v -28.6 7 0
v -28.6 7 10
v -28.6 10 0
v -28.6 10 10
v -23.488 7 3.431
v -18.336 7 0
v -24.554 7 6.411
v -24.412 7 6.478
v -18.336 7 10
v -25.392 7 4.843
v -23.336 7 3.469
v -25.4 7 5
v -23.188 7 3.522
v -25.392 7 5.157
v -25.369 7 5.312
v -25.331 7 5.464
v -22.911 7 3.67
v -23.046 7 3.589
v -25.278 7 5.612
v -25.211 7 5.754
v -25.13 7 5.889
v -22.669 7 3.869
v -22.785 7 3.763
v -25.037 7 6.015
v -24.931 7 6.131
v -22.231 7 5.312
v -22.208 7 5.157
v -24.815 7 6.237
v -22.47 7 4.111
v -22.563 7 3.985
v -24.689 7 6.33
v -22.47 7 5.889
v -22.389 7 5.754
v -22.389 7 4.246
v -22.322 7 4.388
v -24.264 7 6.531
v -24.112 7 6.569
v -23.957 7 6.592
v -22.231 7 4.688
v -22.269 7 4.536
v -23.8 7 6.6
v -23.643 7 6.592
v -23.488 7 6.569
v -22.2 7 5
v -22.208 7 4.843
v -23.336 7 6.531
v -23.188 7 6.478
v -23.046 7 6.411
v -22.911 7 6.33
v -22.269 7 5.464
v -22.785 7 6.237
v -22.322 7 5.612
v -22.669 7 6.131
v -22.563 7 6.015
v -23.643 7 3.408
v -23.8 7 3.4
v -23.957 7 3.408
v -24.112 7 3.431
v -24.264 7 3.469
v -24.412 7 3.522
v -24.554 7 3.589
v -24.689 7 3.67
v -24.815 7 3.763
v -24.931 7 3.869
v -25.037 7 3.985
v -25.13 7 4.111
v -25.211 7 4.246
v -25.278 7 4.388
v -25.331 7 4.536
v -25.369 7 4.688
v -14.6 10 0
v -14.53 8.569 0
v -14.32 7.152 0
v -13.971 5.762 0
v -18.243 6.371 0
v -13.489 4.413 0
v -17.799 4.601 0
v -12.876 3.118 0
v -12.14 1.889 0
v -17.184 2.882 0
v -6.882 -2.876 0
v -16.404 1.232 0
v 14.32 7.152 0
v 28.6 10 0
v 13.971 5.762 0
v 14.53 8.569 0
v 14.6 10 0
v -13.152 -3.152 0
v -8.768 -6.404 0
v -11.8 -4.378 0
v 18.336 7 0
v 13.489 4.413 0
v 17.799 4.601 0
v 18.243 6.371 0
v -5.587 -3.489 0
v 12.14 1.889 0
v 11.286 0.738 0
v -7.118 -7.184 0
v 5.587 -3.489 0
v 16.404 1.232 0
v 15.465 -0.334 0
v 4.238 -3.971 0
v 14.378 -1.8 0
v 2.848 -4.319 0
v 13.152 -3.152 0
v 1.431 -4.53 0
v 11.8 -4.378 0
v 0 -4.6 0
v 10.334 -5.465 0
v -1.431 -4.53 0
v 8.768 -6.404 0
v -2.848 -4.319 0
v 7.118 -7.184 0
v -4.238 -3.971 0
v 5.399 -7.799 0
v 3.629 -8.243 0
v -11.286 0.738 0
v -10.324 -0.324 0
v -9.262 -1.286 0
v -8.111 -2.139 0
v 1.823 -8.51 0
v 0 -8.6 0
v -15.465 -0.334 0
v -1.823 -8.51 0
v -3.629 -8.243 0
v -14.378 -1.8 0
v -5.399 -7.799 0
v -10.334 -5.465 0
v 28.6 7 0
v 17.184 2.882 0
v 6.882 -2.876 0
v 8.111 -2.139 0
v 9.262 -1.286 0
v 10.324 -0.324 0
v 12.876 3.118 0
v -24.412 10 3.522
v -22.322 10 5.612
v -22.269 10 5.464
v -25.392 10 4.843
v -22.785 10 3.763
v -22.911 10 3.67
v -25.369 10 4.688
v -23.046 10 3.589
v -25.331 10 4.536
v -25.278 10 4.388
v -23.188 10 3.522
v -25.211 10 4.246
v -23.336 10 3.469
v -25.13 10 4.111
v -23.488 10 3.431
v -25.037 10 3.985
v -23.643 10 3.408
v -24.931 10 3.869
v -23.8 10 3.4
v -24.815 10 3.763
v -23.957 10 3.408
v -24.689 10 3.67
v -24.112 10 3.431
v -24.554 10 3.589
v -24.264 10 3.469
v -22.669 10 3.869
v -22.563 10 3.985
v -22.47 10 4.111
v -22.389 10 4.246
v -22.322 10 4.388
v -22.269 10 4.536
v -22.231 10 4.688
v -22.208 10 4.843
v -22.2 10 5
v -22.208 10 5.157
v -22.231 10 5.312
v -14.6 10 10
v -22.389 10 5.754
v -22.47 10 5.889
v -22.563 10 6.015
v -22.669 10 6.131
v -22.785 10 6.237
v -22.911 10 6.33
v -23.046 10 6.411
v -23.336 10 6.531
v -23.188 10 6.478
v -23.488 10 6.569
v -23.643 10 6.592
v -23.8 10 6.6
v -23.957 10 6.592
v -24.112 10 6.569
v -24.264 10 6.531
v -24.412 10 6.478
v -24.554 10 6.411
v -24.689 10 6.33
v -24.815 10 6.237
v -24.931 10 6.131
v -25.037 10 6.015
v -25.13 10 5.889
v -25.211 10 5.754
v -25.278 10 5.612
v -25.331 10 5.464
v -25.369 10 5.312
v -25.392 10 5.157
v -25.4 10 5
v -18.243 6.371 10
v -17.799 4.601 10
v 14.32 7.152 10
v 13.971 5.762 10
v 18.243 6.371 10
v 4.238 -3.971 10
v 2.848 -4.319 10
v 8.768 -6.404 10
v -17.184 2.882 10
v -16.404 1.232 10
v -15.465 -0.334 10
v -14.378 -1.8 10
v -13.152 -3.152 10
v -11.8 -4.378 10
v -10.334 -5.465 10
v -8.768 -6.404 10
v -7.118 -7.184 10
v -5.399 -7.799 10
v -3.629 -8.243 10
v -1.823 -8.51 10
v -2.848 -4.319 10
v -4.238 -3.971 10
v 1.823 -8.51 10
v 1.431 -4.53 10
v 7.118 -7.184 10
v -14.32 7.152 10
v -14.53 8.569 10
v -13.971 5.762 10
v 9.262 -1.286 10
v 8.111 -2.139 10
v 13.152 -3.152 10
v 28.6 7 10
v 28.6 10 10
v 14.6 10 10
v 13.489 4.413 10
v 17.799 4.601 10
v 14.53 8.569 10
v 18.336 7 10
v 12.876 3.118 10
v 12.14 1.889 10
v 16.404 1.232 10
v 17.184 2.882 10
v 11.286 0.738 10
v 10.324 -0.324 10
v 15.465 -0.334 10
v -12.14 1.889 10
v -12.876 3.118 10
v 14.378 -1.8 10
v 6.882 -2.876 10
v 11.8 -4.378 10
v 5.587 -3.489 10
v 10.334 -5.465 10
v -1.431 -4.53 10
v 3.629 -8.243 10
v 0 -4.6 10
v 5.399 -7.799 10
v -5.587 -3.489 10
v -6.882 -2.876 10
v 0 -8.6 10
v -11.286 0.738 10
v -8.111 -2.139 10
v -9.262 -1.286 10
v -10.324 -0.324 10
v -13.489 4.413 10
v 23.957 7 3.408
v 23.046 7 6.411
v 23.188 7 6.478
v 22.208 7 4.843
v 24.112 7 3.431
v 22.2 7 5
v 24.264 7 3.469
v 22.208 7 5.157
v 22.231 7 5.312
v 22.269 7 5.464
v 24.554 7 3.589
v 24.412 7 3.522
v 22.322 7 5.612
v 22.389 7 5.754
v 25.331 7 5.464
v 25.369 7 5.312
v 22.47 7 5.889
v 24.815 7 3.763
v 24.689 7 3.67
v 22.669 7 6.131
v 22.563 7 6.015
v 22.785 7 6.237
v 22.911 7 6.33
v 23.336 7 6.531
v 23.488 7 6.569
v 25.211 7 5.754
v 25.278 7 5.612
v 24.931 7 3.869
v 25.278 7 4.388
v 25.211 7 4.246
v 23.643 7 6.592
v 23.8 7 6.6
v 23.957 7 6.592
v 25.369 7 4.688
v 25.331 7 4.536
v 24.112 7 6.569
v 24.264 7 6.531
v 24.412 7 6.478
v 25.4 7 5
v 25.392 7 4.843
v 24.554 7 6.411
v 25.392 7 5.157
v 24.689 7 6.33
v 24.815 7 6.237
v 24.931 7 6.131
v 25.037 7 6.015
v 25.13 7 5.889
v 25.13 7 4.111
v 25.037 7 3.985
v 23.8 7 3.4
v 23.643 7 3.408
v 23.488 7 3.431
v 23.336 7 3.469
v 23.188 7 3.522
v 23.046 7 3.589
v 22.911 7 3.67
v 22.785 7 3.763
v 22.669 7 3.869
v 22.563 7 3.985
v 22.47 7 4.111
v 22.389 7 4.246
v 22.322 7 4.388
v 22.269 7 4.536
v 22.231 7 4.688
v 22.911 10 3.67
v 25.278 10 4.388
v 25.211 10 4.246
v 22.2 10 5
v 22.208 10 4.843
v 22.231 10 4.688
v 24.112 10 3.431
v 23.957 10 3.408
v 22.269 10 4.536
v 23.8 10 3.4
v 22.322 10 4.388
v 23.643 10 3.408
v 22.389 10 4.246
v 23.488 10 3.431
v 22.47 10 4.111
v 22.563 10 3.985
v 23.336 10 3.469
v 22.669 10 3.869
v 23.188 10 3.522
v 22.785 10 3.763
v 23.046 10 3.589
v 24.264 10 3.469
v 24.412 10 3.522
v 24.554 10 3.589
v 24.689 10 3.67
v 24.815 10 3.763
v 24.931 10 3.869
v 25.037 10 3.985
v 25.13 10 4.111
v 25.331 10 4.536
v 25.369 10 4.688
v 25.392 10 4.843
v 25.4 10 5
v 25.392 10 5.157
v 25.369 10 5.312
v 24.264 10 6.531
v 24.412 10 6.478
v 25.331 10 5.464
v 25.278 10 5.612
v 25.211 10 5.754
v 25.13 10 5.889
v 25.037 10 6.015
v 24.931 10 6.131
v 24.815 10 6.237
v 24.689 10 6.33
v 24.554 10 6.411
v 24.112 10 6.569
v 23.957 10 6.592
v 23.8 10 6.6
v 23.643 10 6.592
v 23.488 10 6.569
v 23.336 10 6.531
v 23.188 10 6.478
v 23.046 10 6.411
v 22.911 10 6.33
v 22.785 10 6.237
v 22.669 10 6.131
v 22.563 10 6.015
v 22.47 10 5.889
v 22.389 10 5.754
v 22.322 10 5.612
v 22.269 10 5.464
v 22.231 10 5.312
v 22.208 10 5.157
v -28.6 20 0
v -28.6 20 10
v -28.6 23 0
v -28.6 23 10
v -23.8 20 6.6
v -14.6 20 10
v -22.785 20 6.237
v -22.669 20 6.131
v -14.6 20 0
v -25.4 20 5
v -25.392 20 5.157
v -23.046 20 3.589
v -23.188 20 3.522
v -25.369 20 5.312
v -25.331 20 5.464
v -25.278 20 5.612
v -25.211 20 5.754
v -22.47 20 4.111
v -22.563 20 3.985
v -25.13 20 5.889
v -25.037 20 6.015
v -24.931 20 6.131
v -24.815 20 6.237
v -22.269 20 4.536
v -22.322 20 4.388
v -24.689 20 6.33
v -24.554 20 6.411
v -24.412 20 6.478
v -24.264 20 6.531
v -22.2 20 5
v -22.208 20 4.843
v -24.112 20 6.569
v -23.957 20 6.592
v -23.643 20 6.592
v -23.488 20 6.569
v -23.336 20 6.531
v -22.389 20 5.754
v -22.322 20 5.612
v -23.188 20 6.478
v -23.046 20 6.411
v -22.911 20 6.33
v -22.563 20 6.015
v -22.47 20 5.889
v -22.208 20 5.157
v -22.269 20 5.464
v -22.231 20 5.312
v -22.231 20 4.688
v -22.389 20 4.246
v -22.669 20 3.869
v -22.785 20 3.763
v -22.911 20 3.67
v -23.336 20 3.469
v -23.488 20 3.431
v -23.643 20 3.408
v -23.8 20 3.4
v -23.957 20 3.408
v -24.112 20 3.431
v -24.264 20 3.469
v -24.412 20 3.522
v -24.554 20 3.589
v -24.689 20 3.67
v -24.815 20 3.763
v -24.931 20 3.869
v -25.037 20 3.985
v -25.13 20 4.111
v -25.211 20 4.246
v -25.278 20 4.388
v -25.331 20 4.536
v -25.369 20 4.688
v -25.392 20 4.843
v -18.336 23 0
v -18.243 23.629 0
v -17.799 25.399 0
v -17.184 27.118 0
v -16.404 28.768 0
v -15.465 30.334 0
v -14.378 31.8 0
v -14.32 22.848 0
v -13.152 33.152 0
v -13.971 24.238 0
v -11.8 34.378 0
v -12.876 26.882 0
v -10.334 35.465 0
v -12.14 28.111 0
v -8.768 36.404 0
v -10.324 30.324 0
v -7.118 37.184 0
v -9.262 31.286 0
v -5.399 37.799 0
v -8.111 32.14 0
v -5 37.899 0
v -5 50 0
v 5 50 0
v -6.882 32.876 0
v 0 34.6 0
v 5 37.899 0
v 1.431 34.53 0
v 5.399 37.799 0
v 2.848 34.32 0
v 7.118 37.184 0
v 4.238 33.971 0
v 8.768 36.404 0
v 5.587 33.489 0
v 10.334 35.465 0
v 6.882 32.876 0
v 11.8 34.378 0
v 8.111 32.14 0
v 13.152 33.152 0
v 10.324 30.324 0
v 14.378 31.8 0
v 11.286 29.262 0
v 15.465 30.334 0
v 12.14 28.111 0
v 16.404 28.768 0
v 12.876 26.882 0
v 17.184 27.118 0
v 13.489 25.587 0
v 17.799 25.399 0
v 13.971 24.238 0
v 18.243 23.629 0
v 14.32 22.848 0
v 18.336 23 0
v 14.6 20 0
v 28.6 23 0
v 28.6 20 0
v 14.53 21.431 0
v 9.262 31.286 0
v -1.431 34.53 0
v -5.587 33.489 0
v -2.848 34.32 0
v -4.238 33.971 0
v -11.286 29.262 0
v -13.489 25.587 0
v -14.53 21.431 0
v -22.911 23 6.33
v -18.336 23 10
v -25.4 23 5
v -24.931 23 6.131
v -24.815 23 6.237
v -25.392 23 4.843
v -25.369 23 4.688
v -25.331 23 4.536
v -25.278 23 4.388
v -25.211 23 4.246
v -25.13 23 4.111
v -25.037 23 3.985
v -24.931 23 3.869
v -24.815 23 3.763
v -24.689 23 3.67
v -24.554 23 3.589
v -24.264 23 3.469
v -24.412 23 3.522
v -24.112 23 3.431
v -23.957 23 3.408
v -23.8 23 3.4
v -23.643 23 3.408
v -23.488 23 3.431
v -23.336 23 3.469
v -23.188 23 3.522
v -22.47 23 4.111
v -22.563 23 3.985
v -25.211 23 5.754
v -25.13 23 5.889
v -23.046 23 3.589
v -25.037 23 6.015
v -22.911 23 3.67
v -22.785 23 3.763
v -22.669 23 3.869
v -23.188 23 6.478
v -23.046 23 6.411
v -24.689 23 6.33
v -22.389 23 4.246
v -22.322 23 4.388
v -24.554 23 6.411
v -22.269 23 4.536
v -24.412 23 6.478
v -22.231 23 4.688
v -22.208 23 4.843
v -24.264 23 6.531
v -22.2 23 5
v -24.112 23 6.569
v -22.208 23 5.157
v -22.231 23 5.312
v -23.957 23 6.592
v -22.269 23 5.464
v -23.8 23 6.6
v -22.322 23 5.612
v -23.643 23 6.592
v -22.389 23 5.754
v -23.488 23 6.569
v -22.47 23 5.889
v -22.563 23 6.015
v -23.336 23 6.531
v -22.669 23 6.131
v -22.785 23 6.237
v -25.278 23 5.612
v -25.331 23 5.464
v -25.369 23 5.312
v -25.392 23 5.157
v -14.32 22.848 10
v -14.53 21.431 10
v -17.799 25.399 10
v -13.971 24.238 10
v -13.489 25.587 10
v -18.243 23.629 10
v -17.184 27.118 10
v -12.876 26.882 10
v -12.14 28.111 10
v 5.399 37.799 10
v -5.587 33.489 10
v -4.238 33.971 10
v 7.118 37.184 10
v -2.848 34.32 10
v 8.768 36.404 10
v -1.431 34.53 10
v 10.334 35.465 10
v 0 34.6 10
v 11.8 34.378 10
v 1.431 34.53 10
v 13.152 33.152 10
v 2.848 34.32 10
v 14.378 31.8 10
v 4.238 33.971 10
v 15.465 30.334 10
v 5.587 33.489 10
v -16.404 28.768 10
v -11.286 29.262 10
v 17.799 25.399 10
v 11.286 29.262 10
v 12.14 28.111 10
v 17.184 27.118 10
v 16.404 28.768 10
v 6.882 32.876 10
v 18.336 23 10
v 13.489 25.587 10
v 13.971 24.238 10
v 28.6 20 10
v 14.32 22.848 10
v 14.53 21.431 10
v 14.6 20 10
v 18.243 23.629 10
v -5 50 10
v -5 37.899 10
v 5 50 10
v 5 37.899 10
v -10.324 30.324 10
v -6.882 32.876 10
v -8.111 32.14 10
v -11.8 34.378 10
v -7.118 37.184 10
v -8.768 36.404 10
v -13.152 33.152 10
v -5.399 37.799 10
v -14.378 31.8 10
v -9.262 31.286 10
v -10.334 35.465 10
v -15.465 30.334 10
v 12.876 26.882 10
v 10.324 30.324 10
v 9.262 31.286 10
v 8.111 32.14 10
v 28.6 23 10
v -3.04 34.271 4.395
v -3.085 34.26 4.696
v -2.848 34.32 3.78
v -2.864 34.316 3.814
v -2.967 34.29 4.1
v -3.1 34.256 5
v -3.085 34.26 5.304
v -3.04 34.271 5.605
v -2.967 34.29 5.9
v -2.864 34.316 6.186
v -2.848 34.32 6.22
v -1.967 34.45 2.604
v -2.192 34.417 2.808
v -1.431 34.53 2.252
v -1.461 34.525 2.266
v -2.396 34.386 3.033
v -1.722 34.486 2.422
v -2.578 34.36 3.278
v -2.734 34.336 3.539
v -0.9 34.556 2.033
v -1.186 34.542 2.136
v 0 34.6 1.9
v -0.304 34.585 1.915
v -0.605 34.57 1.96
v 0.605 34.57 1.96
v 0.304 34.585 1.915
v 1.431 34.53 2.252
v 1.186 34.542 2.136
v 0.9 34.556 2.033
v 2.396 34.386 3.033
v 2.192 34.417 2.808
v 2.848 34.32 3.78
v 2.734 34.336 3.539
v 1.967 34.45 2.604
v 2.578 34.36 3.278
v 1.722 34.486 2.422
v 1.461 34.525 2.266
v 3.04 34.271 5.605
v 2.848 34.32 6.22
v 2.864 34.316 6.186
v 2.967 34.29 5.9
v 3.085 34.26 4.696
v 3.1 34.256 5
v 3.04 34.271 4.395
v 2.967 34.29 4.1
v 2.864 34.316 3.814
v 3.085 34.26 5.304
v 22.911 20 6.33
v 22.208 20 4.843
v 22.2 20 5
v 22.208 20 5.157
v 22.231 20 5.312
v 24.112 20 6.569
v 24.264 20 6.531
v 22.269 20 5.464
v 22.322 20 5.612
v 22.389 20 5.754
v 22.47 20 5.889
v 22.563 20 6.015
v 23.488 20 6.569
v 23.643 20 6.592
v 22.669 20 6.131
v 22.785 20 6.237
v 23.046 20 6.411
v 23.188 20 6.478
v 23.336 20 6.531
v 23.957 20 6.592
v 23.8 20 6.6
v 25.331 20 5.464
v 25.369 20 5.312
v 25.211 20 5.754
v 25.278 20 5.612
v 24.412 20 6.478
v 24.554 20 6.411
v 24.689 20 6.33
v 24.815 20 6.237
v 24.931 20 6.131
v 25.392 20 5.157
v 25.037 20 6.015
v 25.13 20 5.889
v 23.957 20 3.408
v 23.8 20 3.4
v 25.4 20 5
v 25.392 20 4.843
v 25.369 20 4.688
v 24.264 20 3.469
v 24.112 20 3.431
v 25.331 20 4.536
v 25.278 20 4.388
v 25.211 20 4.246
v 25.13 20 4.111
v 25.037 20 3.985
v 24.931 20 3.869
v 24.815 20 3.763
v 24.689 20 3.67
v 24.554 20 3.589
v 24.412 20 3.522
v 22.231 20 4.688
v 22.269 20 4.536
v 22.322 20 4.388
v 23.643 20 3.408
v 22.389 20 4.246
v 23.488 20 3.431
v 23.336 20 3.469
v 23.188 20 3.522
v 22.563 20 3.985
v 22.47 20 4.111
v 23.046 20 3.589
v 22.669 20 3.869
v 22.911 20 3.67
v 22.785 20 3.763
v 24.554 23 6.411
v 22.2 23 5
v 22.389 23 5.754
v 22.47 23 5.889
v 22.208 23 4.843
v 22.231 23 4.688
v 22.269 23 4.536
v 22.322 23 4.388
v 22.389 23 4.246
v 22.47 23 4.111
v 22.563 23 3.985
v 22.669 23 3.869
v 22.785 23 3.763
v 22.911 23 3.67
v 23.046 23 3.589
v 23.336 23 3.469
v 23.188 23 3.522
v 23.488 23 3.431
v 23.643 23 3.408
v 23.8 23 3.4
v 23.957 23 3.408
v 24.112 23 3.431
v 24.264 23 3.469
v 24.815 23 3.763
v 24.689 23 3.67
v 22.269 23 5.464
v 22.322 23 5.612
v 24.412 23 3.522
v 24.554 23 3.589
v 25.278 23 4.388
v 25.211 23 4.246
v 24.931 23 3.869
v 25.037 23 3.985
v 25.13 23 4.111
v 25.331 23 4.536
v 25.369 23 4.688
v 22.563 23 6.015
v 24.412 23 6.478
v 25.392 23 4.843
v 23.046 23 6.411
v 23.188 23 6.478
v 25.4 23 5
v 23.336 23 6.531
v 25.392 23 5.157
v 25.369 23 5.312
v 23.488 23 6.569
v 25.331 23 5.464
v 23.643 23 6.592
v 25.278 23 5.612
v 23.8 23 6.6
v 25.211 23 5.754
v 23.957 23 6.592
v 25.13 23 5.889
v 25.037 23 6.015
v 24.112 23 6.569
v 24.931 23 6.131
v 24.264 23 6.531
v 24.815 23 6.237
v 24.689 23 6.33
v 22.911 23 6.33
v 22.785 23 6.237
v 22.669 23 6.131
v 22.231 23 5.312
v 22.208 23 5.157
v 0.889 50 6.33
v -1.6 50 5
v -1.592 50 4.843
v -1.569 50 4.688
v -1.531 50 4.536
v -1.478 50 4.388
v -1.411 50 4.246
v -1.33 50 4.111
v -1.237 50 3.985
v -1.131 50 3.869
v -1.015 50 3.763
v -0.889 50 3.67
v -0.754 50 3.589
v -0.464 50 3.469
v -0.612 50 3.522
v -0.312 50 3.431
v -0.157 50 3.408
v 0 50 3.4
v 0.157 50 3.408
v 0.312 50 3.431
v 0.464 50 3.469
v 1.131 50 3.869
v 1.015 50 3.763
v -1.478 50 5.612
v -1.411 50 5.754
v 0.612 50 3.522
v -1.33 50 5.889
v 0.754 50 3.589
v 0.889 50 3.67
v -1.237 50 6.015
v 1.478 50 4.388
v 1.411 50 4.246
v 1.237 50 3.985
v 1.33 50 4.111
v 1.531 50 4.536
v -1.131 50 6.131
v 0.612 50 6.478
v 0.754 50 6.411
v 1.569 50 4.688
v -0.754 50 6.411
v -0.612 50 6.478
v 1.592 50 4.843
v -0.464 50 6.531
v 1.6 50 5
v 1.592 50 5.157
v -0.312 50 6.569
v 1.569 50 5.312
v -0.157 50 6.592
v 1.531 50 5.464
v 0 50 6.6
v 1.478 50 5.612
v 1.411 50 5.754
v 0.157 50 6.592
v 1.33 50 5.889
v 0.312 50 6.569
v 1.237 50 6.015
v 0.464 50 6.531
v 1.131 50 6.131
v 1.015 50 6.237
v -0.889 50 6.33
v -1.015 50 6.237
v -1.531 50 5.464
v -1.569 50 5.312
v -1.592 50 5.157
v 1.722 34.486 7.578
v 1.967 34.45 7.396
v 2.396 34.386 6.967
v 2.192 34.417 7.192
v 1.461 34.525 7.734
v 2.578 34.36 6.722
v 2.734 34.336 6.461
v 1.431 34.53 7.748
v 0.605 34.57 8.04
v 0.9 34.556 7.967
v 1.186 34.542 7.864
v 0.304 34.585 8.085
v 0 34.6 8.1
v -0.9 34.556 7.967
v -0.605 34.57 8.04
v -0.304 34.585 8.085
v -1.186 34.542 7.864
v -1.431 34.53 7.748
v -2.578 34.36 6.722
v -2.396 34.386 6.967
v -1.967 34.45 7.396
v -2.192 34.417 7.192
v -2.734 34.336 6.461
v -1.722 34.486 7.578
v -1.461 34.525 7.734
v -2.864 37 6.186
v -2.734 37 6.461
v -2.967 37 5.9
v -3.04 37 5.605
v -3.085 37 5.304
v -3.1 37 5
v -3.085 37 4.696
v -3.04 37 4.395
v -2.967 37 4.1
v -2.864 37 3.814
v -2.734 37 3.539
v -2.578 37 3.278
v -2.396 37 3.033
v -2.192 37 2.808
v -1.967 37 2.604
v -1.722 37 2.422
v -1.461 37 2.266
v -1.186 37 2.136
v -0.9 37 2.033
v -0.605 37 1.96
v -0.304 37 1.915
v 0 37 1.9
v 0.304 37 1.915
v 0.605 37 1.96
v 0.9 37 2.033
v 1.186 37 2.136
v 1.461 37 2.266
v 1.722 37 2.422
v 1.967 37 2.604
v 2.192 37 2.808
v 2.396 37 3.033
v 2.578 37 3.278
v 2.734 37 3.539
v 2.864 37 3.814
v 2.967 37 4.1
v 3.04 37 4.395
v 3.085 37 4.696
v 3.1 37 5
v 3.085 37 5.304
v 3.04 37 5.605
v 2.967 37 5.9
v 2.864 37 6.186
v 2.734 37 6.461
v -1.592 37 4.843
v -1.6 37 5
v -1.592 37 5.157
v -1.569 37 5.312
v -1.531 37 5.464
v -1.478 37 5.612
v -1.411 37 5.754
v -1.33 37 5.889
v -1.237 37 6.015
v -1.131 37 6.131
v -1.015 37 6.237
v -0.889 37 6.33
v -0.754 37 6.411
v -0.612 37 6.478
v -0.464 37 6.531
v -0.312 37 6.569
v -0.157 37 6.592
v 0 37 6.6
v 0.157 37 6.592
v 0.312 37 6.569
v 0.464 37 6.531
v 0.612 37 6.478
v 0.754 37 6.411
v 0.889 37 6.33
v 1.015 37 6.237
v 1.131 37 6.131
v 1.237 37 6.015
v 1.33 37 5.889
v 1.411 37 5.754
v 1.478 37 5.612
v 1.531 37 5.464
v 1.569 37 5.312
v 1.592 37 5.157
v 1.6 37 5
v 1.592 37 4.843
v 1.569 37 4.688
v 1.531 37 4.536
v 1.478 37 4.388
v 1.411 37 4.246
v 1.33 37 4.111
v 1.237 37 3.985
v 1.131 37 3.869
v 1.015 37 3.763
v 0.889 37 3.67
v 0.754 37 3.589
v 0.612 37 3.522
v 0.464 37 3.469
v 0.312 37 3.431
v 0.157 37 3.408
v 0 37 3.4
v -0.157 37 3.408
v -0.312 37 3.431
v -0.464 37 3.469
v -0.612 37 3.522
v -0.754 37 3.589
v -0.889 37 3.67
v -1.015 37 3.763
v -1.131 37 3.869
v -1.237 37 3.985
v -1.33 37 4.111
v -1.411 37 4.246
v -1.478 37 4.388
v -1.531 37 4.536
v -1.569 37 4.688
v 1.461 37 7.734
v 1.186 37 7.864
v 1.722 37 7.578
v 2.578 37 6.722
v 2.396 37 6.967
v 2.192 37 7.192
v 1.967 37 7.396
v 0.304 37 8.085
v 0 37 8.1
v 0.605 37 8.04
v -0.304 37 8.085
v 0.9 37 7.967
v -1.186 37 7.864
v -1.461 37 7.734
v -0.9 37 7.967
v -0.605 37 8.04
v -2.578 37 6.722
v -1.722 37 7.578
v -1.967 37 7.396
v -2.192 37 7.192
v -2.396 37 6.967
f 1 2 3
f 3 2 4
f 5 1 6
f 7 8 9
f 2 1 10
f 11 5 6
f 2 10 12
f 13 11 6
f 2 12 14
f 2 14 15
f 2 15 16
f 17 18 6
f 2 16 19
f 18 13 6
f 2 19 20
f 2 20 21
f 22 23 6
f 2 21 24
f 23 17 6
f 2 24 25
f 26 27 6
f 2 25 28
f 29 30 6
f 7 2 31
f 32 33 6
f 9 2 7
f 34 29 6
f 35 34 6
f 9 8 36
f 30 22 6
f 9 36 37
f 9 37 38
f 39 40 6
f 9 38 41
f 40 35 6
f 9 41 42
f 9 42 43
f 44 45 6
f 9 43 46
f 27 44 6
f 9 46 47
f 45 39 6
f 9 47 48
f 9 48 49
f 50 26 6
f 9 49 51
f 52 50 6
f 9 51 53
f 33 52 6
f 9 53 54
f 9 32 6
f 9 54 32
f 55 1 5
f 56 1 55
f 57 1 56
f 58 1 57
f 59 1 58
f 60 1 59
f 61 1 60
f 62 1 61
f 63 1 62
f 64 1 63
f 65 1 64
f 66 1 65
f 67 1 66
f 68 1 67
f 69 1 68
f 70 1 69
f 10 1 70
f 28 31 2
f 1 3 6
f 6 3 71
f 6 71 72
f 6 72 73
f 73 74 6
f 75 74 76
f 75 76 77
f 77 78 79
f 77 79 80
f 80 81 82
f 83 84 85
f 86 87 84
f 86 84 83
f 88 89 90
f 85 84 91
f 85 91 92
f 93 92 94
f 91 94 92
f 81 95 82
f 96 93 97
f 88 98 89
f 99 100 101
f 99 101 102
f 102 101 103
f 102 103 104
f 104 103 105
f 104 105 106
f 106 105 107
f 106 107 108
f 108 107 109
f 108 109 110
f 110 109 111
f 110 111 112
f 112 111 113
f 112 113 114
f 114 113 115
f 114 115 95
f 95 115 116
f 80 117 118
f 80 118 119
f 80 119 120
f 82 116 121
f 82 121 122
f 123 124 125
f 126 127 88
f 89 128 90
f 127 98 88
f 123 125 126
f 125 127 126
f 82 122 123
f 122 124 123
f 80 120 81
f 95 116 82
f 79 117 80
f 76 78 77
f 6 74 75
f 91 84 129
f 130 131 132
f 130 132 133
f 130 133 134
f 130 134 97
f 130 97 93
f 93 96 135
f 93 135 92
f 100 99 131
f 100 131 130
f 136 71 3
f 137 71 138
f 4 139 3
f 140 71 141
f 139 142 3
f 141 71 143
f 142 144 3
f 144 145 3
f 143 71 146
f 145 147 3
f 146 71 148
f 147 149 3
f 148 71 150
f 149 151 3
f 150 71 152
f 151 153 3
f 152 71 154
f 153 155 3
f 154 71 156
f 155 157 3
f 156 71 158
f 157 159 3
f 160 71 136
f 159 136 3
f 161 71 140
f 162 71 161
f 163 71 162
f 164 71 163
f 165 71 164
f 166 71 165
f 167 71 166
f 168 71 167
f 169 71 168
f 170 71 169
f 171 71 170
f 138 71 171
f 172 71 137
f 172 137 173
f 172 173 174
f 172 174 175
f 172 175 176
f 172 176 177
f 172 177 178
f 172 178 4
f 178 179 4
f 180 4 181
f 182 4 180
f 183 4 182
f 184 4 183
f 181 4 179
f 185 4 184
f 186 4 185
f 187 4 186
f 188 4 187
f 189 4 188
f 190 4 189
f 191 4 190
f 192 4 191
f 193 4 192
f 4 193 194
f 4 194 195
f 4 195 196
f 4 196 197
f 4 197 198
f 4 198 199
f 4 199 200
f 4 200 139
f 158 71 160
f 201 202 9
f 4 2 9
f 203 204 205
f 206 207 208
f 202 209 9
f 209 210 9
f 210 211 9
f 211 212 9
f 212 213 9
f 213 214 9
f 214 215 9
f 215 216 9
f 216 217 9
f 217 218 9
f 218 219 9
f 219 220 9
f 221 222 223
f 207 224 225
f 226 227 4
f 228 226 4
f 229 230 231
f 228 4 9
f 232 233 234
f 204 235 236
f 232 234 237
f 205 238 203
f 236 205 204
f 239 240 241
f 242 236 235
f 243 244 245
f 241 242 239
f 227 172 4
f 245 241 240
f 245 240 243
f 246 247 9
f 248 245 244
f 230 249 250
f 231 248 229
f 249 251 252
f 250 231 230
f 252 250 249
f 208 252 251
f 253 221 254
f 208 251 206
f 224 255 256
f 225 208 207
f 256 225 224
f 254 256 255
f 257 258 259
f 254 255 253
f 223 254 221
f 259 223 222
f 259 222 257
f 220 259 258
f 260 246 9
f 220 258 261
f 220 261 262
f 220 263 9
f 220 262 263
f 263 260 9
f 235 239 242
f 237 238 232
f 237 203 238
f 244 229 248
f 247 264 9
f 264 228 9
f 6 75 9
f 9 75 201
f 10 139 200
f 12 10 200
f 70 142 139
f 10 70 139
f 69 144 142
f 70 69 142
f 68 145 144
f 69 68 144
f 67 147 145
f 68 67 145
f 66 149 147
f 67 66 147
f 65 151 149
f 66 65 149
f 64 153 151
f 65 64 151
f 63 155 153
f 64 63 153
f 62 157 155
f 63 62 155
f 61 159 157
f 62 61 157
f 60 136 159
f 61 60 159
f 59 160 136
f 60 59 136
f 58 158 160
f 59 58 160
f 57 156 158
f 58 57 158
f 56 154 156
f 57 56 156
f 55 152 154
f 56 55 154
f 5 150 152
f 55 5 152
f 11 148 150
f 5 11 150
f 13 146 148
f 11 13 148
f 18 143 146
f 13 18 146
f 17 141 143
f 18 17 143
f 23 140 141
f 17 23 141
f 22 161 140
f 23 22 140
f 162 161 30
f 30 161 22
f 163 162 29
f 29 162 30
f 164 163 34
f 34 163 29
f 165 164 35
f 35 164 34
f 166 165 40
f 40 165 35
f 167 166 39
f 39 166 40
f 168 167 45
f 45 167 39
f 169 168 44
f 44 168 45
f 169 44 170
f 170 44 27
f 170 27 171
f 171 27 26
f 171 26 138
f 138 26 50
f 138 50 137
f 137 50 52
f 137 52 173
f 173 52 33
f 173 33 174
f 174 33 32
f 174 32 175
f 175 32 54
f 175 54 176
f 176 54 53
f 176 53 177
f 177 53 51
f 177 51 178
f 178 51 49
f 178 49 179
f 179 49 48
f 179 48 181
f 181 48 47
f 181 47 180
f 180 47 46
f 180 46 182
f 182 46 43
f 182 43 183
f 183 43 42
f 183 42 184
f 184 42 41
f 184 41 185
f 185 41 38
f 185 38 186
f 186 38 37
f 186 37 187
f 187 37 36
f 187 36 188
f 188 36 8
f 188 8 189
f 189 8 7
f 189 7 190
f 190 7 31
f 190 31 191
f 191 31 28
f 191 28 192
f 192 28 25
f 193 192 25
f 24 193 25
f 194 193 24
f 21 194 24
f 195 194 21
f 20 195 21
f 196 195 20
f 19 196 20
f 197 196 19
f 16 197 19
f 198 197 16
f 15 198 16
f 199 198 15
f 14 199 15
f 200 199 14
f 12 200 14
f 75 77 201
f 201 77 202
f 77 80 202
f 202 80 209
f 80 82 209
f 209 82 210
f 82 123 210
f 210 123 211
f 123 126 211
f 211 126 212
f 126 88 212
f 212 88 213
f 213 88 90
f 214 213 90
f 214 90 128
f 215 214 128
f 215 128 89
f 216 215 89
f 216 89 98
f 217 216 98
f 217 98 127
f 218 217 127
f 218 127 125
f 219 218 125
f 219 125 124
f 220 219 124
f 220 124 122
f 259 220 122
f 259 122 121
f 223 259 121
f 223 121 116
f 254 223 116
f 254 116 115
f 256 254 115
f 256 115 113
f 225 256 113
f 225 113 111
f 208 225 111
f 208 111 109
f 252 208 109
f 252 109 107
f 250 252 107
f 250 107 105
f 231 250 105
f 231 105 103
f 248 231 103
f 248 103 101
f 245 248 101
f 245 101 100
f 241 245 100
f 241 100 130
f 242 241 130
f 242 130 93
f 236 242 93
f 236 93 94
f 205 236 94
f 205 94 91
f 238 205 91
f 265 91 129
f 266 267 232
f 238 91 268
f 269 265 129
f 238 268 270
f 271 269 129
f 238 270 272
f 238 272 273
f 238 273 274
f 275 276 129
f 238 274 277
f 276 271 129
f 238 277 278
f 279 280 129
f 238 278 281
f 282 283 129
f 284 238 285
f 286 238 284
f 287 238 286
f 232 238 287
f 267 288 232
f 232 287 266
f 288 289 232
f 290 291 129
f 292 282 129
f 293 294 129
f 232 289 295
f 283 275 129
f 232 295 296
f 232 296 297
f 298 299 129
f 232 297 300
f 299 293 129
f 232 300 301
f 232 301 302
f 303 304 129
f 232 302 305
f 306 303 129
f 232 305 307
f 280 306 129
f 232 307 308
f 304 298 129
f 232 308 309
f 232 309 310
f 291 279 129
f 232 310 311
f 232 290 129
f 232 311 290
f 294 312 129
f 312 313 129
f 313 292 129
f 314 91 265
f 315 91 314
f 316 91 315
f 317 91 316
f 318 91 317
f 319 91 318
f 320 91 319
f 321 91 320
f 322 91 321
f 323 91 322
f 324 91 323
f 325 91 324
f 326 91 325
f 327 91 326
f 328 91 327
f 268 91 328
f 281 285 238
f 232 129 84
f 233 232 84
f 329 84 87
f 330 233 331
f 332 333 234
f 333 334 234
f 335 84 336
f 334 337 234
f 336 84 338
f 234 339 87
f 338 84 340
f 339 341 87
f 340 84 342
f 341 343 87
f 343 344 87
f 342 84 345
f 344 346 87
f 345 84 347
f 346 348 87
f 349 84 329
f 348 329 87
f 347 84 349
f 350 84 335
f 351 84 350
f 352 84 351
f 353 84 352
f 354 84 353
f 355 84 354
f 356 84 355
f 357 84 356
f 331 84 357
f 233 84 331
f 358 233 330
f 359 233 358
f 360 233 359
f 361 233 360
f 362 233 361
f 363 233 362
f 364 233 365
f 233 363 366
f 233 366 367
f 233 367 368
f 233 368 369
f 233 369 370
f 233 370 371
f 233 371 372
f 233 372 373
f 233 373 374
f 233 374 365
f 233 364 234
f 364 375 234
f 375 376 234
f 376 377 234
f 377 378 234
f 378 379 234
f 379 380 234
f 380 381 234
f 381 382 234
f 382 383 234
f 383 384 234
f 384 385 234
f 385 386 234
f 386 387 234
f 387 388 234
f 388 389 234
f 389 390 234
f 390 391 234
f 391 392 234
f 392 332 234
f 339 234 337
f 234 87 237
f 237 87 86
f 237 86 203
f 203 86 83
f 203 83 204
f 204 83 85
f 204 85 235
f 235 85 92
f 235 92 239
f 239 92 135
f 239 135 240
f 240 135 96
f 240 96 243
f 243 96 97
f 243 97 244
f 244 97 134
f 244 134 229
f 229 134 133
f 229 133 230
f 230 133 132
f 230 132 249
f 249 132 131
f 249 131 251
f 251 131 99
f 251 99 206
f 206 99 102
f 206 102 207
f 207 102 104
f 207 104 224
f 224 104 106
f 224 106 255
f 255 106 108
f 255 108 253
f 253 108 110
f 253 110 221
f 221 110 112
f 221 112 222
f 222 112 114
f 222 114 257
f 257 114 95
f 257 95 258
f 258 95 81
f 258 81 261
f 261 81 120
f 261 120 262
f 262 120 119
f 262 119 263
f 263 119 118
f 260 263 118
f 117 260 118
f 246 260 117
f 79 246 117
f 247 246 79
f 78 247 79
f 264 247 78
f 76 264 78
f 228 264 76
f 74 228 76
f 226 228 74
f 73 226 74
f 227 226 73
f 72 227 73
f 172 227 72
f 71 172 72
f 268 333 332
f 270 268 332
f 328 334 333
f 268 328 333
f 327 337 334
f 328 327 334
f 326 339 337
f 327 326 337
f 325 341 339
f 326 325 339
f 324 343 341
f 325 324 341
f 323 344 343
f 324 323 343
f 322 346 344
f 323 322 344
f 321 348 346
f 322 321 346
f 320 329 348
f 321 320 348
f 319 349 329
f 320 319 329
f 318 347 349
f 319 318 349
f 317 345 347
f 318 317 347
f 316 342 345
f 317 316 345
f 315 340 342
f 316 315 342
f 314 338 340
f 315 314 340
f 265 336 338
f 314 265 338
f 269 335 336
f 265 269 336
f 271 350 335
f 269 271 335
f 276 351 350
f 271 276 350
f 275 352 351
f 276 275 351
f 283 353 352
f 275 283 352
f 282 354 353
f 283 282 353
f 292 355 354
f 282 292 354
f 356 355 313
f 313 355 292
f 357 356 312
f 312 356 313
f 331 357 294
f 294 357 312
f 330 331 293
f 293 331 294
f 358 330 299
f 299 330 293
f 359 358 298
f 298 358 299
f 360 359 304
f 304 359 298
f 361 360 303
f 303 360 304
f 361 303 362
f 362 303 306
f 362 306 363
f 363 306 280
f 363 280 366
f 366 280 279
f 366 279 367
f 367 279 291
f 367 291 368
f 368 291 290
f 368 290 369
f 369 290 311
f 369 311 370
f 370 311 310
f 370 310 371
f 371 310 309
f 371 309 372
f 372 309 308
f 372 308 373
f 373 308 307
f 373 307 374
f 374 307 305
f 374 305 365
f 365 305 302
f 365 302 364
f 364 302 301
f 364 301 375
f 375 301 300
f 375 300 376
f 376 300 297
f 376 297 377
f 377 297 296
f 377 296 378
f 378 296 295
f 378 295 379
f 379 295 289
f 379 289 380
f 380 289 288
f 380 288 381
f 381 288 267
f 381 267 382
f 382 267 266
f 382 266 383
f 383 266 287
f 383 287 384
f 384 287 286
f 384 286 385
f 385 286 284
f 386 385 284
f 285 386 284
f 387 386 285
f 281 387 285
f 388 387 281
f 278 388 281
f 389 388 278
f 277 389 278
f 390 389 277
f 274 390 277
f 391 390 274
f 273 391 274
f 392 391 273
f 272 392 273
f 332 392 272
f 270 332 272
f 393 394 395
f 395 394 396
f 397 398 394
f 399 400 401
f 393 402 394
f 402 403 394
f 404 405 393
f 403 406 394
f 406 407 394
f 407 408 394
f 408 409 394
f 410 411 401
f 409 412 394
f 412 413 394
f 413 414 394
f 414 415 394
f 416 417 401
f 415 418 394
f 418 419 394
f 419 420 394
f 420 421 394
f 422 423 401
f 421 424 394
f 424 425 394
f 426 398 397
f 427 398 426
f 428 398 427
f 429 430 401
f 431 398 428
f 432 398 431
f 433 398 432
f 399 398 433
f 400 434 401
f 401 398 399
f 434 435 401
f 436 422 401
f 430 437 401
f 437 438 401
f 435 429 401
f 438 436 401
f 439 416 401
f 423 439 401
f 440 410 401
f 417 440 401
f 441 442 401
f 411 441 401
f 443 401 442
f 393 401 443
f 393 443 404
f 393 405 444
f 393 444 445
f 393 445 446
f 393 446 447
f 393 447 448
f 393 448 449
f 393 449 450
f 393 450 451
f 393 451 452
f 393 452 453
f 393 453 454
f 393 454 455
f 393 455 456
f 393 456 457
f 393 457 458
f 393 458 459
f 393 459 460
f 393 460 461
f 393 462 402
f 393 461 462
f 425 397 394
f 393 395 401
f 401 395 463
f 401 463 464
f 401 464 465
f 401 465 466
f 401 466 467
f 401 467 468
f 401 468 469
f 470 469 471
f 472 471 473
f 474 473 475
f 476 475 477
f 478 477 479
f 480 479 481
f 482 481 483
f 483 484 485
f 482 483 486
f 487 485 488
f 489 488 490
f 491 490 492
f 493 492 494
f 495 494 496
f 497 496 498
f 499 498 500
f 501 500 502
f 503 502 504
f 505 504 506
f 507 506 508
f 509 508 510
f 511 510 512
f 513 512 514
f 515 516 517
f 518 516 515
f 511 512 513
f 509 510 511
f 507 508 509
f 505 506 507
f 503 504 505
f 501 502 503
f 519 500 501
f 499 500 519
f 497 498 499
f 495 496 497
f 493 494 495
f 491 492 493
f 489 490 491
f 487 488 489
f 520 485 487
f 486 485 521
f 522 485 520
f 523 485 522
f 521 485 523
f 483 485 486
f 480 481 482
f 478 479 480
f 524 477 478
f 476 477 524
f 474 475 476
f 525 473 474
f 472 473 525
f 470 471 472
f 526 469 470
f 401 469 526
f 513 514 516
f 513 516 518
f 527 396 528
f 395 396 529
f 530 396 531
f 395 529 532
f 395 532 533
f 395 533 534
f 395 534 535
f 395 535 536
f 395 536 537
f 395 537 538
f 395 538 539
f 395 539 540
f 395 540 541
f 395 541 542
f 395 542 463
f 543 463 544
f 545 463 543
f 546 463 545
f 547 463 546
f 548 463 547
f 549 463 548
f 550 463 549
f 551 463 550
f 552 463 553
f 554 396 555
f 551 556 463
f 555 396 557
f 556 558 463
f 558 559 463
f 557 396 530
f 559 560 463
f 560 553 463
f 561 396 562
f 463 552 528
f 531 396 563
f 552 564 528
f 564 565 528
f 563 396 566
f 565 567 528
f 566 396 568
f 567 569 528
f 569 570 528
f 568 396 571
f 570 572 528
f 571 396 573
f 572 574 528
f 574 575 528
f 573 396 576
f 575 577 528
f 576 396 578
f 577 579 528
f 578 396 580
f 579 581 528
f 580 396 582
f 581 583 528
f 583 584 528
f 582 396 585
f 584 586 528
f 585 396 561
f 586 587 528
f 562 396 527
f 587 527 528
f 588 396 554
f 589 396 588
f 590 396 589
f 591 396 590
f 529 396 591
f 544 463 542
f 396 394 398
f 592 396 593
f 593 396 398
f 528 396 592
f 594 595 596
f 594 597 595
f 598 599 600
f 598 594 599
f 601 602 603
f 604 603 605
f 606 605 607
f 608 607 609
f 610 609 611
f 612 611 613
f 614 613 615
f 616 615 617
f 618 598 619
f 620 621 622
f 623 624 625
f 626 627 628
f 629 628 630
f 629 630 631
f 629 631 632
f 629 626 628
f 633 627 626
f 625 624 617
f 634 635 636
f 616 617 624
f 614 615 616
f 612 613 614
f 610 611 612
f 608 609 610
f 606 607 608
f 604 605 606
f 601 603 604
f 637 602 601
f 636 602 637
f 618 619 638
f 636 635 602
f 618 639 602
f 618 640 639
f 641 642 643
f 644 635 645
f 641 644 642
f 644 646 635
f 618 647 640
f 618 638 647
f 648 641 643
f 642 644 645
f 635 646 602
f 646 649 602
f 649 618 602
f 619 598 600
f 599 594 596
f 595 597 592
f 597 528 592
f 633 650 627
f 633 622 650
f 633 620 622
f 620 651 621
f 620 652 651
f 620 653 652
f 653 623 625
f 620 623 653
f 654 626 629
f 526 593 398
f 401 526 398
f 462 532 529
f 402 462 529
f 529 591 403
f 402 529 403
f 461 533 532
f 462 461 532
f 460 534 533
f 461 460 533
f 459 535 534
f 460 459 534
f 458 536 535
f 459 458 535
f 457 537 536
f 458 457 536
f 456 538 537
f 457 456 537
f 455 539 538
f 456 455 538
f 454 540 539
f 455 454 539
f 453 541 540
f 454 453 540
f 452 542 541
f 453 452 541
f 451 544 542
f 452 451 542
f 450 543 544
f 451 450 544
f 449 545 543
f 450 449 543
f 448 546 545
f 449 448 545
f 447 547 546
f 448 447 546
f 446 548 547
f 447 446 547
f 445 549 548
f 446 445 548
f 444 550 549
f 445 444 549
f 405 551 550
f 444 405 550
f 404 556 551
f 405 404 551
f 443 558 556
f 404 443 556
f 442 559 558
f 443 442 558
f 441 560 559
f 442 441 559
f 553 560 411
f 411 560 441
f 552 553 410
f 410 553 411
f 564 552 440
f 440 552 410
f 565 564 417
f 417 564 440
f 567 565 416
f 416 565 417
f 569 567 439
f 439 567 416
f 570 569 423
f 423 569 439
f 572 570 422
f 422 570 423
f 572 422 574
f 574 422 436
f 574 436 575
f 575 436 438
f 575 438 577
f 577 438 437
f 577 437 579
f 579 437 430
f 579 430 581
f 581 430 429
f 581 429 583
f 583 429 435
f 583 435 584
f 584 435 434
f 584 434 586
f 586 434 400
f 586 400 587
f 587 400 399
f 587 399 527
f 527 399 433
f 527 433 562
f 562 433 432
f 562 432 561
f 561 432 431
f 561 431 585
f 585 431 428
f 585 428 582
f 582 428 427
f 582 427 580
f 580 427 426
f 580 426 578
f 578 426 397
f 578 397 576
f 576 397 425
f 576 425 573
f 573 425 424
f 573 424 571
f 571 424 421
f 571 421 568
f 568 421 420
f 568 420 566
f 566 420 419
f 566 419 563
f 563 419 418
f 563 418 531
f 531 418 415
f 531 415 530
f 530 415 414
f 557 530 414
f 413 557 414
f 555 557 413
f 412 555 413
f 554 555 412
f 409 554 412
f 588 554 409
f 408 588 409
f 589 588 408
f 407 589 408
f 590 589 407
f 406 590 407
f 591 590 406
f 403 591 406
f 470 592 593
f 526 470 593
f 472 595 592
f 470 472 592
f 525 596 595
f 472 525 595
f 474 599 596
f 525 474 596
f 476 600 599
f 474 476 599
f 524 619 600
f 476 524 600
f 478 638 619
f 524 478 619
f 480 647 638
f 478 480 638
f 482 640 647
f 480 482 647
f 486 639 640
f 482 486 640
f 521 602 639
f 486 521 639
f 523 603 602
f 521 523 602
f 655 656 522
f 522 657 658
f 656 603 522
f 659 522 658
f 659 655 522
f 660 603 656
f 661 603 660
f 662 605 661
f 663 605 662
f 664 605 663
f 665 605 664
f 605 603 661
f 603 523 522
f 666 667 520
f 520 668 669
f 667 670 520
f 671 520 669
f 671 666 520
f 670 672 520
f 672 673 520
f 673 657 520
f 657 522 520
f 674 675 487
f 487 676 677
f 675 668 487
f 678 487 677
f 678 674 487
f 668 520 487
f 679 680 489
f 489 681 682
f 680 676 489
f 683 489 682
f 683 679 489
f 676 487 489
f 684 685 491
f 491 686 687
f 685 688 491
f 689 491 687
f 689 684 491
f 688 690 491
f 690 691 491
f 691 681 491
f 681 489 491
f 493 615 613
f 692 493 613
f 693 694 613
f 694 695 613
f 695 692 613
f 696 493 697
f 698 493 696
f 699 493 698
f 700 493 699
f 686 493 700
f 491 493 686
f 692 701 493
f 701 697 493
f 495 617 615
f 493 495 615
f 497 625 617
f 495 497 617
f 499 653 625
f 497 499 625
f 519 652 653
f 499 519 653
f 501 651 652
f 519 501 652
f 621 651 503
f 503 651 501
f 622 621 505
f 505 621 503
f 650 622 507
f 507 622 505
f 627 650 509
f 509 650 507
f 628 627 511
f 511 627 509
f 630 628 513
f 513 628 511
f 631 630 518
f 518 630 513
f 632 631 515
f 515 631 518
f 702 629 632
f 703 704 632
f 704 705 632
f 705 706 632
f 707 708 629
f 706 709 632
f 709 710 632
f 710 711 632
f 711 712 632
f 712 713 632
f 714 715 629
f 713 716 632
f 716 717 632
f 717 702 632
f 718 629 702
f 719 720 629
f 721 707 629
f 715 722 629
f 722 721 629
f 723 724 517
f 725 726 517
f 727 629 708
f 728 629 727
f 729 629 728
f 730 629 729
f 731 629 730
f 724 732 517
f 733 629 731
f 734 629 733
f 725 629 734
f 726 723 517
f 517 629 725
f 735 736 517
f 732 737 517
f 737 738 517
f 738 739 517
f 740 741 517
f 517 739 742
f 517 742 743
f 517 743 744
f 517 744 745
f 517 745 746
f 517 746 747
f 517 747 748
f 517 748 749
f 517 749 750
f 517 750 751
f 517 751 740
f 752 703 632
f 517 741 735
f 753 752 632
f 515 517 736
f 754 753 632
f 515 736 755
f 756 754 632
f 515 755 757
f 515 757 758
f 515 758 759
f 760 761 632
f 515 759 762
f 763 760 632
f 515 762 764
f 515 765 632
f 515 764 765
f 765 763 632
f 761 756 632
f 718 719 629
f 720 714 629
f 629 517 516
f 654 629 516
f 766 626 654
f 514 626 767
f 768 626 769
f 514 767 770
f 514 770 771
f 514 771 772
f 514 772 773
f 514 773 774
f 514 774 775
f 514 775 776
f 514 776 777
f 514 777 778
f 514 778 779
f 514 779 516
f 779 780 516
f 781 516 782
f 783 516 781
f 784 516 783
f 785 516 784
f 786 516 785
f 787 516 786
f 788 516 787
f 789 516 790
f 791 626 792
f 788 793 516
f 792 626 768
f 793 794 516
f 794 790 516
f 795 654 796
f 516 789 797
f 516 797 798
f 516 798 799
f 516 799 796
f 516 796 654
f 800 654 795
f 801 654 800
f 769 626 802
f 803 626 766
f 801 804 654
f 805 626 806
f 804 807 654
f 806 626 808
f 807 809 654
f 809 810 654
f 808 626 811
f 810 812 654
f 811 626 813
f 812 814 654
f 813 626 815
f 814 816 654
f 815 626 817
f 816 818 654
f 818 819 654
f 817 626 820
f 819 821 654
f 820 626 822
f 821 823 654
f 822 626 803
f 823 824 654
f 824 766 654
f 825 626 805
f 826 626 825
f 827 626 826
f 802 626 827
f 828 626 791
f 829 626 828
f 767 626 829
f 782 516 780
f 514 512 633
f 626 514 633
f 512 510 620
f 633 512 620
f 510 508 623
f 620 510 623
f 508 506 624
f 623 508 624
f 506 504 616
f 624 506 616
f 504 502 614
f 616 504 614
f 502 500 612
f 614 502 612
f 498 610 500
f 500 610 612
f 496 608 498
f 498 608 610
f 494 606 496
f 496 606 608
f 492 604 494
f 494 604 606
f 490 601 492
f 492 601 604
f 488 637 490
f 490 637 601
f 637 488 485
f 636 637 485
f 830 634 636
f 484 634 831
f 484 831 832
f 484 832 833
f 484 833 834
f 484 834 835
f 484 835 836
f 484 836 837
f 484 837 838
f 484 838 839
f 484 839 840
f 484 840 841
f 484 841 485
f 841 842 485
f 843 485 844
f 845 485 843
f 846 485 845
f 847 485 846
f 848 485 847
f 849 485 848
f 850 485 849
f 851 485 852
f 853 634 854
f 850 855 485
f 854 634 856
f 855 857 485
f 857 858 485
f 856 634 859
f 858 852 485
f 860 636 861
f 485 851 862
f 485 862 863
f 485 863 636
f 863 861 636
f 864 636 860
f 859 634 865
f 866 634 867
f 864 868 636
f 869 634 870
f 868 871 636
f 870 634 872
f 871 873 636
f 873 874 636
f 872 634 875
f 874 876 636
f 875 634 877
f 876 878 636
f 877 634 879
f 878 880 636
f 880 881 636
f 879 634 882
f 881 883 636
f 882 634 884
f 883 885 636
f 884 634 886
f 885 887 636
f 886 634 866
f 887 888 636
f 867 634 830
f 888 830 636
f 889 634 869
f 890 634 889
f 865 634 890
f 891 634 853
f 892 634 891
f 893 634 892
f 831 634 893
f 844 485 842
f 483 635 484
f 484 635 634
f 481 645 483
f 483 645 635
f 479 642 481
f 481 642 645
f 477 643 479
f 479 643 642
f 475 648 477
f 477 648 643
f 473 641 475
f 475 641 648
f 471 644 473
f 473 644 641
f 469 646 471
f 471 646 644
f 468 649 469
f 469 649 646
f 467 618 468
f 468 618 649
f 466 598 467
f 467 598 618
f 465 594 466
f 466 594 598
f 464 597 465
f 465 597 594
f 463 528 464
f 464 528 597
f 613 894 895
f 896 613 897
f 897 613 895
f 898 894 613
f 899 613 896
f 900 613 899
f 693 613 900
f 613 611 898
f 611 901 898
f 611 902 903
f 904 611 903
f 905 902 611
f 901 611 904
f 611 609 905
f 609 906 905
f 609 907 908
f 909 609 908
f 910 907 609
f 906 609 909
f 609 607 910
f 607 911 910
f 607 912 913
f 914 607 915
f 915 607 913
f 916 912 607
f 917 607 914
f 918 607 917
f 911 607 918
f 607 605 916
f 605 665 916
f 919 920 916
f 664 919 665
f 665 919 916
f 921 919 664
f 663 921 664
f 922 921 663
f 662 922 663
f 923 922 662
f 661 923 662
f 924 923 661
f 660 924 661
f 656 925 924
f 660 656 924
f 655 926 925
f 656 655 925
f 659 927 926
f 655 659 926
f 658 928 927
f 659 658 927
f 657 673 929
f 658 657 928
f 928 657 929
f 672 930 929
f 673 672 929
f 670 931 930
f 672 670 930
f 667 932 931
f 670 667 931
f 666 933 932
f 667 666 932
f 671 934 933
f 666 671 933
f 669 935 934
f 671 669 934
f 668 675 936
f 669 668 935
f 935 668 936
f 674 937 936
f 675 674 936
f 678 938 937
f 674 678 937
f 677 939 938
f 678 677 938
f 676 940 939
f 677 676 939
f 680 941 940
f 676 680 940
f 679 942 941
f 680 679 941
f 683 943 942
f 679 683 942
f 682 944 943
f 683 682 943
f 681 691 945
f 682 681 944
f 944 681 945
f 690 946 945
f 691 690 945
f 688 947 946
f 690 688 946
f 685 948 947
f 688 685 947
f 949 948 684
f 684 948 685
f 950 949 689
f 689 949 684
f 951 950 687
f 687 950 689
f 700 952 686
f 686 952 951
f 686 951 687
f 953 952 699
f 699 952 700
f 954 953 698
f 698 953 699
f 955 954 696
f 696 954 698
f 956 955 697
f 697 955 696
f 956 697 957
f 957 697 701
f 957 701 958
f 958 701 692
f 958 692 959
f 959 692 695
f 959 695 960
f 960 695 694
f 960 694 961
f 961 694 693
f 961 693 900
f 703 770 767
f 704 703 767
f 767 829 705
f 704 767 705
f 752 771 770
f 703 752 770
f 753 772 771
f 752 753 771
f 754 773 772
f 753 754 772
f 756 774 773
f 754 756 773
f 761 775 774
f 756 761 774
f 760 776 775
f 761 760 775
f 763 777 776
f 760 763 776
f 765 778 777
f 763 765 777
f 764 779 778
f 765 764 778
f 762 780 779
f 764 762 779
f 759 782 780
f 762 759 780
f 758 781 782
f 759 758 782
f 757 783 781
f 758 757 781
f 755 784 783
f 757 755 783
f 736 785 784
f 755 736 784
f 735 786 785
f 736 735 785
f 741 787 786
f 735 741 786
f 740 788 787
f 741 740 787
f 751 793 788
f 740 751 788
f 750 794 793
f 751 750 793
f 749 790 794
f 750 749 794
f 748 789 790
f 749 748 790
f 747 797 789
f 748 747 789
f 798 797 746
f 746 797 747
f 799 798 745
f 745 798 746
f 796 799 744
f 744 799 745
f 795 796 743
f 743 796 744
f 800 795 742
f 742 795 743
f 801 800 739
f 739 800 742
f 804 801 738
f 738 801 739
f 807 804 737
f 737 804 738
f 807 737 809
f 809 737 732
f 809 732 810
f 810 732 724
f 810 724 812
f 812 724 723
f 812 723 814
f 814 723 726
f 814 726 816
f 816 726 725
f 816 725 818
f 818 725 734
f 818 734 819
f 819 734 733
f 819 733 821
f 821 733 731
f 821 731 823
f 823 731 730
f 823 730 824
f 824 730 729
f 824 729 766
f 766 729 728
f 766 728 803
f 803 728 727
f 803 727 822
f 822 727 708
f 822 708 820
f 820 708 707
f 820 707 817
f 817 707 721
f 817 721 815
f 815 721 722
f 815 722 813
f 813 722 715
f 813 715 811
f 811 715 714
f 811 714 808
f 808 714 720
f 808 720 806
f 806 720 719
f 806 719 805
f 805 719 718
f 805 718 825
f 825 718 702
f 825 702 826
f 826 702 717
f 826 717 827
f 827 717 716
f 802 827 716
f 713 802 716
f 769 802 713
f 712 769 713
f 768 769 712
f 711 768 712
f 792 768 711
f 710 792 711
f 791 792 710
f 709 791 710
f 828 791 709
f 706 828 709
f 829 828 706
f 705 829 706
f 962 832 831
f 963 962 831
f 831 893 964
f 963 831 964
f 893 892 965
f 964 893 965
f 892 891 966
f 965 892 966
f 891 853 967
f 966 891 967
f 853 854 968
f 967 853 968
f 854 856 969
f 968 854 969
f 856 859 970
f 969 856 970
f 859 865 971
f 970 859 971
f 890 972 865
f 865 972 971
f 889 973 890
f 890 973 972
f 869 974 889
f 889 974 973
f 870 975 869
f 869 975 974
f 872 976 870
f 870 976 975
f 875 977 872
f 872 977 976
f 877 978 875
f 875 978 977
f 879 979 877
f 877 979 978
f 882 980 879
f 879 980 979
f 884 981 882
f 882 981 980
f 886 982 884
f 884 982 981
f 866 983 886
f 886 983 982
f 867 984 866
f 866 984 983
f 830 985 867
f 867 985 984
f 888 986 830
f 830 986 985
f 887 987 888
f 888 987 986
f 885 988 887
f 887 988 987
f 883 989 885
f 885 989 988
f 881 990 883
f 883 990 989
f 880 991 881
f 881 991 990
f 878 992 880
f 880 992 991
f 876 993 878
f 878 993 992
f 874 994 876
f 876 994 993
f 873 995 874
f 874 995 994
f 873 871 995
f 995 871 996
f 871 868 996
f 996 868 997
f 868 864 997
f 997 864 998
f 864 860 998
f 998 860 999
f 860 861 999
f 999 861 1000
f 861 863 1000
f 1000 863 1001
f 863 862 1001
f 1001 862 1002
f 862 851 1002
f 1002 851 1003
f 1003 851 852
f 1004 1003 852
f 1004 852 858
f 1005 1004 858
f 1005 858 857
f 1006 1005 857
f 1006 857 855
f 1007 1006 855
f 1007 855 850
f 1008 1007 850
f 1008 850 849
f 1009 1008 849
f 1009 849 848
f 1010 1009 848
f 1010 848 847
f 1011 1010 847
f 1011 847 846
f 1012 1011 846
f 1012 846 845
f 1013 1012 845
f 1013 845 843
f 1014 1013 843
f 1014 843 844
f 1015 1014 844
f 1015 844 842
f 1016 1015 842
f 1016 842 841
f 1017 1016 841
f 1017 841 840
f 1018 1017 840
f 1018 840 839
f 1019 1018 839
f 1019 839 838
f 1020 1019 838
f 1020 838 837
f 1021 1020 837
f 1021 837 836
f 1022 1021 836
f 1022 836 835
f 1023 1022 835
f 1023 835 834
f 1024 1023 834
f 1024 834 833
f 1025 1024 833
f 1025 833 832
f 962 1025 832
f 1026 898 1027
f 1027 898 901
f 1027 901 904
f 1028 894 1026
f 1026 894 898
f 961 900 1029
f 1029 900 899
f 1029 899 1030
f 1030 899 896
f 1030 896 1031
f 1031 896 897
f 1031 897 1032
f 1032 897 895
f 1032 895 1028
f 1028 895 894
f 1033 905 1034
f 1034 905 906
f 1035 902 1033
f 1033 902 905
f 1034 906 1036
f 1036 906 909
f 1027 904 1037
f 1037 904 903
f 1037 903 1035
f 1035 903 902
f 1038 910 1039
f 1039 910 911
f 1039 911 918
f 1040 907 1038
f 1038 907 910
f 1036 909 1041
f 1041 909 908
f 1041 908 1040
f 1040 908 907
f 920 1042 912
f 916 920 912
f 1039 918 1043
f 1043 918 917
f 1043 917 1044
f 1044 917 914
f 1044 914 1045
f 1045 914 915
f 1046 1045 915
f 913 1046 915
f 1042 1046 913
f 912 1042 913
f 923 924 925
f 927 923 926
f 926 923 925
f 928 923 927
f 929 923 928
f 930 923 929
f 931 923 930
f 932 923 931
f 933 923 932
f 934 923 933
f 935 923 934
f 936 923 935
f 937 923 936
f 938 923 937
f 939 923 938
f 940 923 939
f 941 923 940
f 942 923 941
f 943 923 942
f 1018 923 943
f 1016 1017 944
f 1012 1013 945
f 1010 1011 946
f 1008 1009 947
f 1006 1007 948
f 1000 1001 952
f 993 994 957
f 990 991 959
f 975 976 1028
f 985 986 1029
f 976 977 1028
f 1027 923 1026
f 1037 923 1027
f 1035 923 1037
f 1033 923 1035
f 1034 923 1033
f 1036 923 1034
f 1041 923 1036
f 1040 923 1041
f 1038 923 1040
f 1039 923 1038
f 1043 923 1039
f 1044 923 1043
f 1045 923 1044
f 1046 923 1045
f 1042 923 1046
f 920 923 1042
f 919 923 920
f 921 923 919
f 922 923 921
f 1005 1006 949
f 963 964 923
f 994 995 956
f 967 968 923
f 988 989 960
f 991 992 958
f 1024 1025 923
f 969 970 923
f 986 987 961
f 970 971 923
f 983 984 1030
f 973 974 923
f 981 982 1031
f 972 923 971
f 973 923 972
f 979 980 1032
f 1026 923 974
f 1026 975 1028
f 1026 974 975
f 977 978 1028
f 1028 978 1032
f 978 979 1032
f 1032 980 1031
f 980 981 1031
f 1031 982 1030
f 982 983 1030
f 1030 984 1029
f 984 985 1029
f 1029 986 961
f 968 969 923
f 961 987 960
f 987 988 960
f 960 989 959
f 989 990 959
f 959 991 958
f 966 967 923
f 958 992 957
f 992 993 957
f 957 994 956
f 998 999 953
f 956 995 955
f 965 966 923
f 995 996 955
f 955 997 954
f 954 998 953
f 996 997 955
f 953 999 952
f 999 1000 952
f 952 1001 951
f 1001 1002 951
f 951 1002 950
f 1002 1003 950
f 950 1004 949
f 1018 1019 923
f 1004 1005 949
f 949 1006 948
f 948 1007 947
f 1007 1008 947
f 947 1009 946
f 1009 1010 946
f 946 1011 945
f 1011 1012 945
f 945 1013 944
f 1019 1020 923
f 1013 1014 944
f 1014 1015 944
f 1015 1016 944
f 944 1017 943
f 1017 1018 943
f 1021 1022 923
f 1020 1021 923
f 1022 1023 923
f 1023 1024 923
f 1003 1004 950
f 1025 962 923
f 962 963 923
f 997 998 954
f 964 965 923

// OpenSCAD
$fn = 64;
xy_ajuste = 0.2;




//----------- Eixo de fixação

dint_eixo = 29 + xy_ajuste;
dext_eixo = dint_eixo + 8; 
h_eixo = 10;
dy_eixo = 10;
dx_fixa = dext_eixo + 20; 
dy_fixa = 6; // espessura do batente de fixacao
d_furo_m3 = 3 + xy_ajuste;
d_cabeca_m3 = 6 + xy_ajuste;


module fixa_eixo( dint, hx ){ 

difference(){
	//furo do eixo e suporte do prensador
	render(){
		cylinder(h=hx, r=dext_eixo/2 );

		translate([-dx_fixa/2, -dy_fixa/2, 0])
		cube([dx_fixa, dy_fixa, hx]);
	}

	//furos m3 do fixador
	translate([(dx_fixa/2)-d_furo_m3*1.5, (dy_fixa/2)+0.1 , hx/2])
	rotate([90,0,0])	
		cylinder(h=dy_fixa+0.2, r=d_furo_m3/2 );	

	translate([-(dx_fixa/2)+d_furo_m3*1.5, (dy_fixa/2)+0.1 , hx/2])
	rotate([90,0,0])	
		cylinder(h=dy_fixa+0.2, r=d_furo_m3/2 );	

	cylinder(h=h_eixo, r=dint/2 );
}
}


dy_corte = 20;

//parte colada ao link
translate([0,dy_eixo,0])
difference(){
	fixa_eixo(dint_eixo, h_eixo);
	translate([-dx_fixa/2, 0, 0]) //corte central
		cube([dx_fixa, dy_corte, h_eixo]);
}


//parte separada
translate([0,dy_eixo + 10,0])
difference(){
	fixa_eixo(dint_eixo, h_eixo);

	translate([-dx_fixa/2, -dy_corte, 0]) //corte central
		cube([dx_fixa, dy_corte, h_eixo]);

	translate([0,0,h_eixo/2])
	rotate([-90,0,0])
	cylinder(h=h_eixo*2, r=d_cabeca_m3/2);

}



//----------- LINK
dx_link = 10;
dy_link_ajuste = 1;
dy_link = 12;//dy_eixo - (dext_apoio_r/2) - (dext_eixo/2) + 2;
h_link = h_eixo;

difference(){

	translate([ -dx_link/2, 37, 0])
		cube([dx_link, dy_link + dy_link_ajuste, h_link ]);

	translate([0,dint_eixo,h_eixo/2])
	rotate([-90,0,0])
	cylinder(h=h_eixo*3, r=d_furo_m3/2);

}

 
